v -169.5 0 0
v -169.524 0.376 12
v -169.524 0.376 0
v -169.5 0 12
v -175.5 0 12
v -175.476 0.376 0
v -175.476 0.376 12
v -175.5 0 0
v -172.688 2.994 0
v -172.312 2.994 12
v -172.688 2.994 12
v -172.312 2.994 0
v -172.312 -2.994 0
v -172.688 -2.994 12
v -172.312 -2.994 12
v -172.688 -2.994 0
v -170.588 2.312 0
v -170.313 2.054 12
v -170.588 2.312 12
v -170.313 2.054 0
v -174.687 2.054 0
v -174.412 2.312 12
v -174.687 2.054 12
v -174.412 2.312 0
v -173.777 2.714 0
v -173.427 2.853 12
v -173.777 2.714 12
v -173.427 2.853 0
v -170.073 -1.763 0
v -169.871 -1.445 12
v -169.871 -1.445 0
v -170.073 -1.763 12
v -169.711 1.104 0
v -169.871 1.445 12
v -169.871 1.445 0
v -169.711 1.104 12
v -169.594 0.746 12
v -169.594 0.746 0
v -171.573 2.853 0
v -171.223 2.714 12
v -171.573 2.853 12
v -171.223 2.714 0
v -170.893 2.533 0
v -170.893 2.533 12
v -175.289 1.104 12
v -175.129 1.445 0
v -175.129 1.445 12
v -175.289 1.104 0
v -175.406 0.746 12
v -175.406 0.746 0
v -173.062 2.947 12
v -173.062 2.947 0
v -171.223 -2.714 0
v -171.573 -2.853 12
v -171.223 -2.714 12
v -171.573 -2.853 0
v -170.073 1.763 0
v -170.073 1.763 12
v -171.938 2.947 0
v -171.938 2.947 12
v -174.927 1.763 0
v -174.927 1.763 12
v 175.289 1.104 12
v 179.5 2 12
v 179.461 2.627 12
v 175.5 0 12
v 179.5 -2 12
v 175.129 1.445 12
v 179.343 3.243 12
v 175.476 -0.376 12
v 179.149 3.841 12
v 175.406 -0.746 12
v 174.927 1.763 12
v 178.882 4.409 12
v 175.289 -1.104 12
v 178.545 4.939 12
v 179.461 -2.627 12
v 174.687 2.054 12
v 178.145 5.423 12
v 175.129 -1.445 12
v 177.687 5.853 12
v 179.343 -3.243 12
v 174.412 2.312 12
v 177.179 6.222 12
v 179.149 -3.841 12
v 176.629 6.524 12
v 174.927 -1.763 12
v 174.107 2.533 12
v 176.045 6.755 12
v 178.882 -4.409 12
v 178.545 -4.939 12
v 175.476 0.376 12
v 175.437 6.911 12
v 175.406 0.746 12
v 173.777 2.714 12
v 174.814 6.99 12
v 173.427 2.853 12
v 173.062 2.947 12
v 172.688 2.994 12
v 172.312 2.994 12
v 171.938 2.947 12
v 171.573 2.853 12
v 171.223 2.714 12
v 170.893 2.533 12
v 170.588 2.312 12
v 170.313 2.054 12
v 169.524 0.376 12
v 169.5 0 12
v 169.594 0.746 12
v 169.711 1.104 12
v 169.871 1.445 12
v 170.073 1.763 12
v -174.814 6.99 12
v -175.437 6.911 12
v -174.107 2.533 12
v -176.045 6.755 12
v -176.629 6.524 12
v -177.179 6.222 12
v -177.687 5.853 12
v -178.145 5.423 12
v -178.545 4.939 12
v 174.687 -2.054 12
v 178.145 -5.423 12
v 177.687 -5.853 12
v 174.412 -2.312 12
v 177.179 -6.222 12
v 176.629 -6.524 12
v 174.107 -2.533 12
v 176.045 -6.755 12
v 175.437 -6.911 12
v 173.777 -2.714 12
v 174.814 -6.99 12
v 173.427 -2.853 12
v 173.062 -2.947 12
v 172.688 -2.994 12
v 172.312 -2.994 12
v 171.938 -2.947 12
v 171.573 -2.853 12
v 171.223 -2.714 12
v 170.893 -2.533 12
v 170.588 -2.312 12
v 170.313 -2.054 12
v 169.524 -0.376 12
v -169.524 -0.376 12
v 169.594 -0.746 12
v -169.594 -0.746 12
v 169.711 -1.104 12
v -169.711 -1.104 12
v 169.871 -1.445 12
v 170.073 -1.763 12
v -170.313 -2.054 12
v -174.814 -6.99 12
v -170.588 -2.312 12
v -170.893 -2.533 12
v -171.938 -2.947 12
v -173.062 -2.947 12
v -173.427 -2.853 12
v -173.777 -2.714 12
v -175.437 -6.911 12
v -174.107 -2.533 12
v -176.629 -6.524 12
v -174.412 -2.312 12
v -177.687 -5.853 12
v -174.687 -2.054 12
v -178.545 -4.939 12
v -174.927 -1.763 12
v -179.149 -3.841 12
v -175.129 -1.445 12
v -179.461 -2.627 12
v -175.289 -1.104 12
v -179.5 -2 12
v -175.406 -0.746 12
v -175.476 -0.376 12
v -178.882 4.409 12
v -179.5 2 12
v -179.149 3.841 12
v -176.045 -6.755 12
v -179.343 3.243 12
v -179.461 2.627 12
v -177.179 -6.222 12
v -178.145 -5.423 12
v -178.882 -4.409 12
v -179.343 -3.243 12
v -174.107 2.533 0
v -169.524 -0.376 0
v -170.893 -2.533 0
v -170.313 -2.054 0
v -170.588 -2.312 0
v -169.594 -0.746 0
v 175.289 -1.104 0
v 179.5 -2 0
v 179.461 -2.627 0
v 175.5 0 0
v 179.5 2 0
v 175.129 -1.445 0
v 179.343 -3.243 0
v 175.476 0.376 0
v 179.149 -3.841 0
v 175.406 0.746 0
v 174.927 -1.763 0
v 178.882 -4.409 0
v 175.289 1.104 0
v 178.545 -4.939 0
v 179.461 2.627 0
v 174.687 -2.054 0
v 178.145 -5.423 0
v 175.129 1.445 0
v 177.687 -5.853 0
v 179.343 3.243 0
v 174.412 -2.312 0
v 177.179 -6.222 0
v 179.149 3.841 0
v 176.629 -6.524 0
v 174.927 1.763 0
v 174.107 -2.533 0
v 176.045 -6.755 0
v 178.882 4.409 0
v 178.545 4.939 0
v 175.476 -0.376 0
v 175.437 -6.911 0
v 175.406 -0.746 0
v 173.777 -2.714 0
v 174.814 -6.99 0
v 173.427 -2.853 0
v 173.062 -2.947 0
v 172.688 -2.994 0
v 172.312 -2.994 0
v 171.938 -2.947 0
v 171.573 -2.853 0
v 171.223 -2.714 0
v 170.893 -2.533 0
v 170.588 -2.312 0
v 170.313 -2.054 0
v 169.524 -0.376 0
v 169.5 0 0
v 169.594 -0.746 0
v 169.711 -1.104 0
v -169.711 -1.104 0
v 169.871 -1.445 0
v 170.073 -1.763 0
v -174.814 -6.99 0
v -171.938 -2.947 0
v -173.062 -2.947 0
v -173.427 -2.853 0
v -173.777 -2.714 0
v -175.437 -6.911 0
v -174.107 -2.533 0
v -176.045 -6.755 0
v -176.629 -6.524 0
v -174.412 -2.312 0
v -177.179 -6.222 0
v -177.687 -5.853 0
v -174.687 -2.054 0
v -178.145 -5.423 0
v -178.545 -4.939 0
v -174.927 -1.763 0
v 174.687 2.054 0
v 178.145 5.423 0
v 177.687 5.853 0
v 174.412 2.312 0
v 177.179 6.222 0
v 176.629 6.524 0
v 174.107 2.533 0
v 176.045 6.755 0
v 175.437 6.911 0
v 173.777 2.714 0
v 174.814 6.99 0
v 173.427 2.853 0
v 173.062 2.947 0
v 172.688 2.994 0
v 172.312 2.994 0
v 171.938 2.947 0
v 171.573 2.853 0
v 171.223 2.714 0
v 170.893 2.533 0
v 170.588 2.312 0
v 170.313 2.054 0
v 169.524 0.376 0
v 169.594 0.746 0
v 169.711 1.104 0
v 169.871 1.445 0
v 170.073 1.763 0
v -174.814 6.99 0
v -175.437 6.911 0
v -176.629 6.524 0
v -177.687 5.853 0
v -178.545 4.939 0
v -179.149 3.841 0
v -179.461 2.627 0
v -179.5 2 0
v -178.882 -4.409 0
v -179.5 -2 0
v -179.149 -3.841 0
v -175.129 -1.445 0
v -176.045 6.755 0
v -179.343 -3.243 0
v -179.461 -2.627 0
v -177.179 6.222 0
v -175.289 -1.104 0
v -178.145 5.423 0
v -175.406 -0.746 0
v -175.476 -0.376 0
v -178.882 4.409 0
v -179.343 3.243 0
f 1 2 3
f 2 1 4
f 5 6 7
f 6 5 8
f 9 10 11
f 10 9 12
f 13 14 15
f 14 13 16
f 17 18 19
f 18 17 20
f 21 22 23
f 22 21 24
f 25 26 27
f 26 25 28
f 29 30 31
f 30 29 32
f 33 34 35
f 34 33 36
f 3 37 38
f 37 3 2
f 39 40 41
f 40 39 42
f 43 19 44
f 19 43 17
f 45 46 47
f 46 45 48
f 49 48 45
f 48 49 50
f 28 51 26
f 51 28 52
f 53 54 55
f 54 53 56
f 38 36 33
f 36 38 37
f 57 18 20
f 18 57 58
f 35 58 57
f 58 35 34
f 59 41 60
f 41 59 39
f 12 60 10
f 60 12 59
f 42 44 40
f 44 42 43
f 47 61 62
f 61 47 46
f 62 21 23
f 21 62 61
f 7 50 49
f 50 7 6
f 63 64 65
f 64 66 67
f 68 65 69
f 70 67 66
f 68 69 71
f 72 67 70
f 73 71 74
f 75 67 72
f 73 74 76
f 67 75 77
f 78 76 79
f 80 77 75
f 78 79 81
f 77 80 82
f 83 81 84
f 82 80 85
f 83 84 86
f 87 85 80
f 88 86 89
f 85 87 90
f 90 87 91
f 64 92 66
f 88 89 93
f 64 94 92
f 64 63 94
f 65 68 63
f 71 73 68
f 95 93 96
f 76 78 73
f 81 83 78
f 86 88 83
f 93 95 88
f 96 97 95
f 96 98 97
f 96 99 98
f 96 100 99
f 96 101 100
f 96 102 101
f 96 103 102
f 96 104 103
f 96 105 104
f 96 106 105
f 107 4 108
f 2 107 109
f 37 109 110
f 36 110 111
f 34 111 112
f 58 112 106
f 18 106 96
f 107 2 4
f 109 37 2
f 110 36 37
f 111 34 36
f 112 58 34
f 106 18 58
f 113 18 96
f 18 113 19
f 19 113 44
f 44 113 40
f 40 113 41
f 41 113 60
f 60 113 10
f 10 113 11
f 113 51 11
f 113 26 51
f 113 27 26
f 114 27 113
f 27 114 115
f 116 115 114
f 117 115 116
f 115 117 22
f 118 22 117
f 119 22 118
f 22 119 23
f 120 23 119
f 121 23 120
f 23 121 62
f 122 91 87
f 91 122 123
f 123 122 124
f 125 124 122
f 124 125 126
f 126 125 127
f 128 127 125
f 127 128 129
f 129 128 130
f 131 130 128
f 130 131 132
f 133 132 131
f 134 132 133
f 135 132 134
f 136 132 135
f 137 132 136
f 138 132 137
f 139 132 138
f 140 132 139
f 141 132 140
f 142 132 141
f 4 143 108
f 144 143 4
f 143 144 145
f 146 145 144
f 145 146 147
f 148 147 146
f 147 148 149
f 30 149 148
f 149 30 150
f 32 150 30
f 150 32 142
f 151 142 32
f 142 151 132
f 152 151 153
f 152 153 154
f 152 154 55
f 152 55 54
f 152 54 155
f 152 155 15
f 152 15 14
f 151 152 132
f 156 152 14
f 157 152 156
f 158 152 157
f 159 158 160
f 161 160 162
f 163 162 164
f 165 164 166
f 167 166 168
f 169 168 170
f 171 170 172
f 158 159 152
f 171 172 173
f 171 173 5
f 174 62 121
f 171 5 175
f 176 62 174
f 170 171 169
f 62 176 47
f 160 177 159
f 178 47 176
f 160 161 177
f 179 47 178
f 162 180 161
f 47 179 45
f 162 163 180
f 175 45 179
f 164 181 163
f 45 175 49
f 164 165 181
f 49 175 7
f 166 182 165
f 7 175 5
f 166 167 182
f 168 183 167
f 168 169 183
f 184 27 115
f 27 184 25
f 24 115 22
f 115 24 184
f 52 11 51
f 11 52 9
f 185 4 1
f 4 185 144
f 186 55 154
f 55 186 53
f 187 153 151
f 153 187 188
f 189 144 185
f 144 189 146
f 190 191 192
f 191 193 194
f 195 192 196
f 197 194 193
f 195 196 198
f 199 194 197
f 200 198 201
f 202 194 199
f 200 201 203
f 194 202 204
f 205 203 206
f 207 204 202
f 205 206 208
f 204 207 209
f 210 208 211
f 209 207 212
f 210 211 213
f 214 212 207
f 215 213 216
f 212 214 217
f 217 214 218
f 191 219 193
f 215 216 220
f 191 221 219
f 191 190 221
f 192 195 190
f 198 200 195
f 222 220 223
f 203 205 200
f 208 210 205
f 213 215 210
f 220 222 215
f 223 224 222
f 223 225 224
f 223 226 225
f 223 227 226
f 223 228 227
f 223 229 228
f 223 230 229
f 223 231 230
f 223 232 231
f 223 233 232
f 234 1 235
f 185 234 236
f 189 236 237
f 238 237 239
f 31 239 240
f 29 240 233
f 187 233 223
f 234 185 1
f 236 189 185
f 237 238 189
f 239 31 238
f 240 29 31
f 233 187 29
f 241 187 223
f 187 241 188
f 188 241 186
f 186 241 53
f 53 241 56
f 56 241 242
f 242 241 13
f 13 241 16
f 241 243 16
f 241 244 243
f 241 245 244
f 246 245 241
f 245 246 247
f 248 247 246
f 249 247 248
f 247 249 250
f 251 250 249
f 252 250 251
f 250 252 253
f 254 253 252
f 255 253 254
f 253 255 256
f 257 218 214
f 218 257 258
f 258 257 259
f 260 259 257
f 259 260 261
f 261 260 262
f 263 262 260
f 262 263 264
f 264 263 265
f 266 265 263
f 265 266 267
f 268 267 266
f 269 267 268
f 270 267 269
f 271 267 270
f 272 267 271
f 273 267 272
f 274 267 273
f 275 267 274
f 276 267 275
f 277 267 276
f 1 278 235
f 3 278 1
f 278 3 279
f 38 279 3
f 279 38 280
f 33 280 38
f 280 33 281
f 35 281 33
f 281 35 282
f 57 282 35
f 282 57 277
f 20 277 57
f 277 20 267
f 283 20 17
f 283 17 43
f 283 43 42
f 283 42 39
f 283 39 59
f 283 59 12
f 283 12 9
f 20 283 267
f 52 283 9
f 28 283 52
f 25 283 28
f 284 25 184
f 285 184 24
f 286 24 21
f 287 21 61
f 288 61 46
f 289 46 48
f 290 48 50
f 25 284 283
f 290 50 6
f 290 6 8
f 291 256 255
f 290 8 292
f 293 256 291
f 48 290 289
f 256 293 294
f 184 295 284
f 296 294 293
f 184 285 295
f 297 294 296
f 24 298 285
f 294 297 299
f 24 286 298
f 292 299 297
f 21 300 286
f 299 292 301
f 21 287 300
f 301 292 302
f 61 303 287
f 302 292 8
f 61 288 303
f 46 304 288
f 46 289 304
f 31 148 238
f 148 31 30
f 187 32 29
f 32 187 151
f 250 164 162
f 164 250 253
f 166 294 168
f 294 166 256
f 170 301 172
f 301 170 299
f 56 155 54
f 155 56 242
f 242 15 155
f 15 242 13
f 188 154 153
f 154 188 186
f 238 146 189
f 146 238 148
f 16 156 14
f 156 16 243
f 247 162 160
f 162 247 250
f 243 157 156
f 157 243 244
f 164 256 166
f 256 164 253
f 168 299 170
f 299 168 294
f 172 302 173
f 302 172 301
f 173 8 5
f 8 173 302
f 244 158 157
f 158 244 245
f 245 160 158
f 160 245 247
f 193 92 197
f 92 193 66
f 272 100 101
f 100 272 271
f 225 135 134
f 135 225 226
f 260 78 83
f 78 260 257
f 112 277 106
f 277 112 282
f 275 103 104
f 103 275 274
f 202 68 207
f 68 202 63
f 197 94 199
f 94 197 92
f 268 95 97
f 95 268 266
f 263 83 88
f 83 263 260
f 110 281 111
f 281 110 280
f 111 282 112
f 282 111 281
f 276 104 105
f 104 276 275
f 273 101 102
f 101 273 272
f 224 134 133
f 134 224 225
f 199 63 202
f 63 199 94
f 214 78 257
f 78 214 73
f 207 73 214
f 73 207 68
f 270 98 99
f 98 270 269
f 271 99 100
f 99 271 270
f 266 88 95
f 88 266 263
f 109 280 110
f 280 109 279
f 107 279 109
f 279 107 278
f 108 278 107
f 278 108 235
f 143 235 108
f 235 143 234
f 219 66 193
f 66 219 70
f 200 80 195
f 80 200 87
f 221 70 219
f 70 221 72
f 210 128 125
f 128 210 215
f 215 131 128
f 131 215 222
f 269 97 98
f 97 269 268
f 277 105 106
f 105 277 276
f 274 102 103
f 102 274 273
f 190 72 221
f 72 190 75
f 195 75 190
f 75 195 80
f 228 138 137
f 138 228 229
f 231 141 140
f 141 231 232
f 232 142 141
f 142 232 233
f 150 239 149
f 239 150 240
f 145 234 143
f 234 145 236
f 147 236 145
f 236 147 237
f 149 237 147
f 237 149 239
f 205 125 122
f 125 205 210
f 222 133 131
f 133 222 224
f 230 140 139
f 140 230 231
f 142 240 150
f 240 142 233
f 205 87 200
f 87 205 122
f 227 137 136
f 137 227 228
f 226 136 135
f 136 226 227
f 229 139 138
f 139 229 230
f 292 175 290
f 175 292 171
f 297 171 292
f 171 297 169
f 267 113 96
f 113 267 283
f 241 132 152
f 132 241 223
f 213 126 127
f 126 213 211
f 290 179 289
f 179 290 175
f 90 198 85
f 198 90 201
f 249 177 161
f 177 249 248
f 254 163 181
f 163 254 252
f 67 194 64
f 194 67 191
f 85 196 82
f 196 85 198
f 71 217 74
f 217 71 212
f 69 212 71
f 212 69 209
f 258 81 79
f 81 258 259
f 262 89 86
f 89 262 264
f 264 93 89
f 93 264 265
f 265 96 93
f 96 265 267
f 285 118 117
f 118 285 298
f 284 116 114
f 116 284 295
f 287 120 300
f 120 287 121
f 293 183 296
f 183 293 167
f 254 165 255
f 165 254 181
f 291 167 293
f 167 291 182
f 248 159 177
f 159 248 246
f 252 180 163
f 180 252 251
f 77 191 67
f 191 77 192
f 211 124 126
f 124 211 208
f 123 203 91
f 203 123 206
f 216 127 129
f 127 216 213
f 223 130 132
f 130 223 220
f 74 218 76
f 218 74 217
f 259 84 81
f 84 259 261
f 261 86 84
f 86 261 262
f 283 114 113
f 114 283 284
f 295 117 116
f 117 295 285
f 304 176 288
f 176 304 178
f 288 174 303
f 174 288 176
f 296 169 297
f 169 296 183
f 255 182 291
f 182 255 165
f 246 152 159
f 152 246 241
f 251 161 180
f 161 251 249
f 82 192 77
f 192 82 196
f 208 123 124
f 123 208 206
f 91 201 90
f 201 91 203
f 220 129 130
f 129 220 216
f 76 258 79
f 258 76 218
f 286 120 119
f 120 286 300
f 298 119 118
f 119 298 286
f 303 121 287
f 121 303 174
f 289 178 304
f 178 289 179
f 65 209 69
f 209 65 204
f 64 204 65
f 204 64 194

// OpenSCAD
$fn = 50;


difference() {
	union() {
		hull() {
			translate(v = [-174.5000000000, 2.0000000000, 0]) {
				cylinder(h = 12, r = 5);
			}
			translate(v = [174.5000000000, 2.0000000000, 0]) {
				cylinder(h = 12, r = 5);
			}
			translate(v = [-174.5000000000, -2.0000000000, 0]) {
				cylinder(h = 12, r = 5);
			}
			translate(v = [174.5000000000, -2.0000000000, 0]) {
				cylinder(h = 12, r = 5);
			}
		}
	}
	union() {
		translate(v = [-172.5000000000, 0.0000000000, 0]) {
			cylinder(h = 12, r = 3.0000000000);
		}
		translate(v = [172.5000000000, 0.0000000000, 0]) {
			cylinder(h = 12, r = 3.0000000000);
		}
		translate(v = [-172.5000000000, 0.0000000000, 0]) {
			cylinder(h = 12, r = 1.5000000000);
		}
		translate(v = [172.5000000000, 0.0000000000, 0]) {
			cylinder(h = 12, r = 1.5000000000);
		}
		translate(v = [-172.5000000000, 0.0000000000, 0]) {
			cylinder(h = 12, r = 1.5000000000);
		}
		translate(v = [172.5000000000, 0.0000000000, 0]) {
			cylinder(h = 12, r = 1.5000000000);
		}
		translate(v = [-172.5000000000, 0.0000000000, 0]) {
			cylinder(h = 12, r = 1.5000000000);
		}
		translate(v = [172.5000000000, 0.0000000000, 0]) {
			cylinder(h = 12, r = 1.5000000000);
		}
	}
}
